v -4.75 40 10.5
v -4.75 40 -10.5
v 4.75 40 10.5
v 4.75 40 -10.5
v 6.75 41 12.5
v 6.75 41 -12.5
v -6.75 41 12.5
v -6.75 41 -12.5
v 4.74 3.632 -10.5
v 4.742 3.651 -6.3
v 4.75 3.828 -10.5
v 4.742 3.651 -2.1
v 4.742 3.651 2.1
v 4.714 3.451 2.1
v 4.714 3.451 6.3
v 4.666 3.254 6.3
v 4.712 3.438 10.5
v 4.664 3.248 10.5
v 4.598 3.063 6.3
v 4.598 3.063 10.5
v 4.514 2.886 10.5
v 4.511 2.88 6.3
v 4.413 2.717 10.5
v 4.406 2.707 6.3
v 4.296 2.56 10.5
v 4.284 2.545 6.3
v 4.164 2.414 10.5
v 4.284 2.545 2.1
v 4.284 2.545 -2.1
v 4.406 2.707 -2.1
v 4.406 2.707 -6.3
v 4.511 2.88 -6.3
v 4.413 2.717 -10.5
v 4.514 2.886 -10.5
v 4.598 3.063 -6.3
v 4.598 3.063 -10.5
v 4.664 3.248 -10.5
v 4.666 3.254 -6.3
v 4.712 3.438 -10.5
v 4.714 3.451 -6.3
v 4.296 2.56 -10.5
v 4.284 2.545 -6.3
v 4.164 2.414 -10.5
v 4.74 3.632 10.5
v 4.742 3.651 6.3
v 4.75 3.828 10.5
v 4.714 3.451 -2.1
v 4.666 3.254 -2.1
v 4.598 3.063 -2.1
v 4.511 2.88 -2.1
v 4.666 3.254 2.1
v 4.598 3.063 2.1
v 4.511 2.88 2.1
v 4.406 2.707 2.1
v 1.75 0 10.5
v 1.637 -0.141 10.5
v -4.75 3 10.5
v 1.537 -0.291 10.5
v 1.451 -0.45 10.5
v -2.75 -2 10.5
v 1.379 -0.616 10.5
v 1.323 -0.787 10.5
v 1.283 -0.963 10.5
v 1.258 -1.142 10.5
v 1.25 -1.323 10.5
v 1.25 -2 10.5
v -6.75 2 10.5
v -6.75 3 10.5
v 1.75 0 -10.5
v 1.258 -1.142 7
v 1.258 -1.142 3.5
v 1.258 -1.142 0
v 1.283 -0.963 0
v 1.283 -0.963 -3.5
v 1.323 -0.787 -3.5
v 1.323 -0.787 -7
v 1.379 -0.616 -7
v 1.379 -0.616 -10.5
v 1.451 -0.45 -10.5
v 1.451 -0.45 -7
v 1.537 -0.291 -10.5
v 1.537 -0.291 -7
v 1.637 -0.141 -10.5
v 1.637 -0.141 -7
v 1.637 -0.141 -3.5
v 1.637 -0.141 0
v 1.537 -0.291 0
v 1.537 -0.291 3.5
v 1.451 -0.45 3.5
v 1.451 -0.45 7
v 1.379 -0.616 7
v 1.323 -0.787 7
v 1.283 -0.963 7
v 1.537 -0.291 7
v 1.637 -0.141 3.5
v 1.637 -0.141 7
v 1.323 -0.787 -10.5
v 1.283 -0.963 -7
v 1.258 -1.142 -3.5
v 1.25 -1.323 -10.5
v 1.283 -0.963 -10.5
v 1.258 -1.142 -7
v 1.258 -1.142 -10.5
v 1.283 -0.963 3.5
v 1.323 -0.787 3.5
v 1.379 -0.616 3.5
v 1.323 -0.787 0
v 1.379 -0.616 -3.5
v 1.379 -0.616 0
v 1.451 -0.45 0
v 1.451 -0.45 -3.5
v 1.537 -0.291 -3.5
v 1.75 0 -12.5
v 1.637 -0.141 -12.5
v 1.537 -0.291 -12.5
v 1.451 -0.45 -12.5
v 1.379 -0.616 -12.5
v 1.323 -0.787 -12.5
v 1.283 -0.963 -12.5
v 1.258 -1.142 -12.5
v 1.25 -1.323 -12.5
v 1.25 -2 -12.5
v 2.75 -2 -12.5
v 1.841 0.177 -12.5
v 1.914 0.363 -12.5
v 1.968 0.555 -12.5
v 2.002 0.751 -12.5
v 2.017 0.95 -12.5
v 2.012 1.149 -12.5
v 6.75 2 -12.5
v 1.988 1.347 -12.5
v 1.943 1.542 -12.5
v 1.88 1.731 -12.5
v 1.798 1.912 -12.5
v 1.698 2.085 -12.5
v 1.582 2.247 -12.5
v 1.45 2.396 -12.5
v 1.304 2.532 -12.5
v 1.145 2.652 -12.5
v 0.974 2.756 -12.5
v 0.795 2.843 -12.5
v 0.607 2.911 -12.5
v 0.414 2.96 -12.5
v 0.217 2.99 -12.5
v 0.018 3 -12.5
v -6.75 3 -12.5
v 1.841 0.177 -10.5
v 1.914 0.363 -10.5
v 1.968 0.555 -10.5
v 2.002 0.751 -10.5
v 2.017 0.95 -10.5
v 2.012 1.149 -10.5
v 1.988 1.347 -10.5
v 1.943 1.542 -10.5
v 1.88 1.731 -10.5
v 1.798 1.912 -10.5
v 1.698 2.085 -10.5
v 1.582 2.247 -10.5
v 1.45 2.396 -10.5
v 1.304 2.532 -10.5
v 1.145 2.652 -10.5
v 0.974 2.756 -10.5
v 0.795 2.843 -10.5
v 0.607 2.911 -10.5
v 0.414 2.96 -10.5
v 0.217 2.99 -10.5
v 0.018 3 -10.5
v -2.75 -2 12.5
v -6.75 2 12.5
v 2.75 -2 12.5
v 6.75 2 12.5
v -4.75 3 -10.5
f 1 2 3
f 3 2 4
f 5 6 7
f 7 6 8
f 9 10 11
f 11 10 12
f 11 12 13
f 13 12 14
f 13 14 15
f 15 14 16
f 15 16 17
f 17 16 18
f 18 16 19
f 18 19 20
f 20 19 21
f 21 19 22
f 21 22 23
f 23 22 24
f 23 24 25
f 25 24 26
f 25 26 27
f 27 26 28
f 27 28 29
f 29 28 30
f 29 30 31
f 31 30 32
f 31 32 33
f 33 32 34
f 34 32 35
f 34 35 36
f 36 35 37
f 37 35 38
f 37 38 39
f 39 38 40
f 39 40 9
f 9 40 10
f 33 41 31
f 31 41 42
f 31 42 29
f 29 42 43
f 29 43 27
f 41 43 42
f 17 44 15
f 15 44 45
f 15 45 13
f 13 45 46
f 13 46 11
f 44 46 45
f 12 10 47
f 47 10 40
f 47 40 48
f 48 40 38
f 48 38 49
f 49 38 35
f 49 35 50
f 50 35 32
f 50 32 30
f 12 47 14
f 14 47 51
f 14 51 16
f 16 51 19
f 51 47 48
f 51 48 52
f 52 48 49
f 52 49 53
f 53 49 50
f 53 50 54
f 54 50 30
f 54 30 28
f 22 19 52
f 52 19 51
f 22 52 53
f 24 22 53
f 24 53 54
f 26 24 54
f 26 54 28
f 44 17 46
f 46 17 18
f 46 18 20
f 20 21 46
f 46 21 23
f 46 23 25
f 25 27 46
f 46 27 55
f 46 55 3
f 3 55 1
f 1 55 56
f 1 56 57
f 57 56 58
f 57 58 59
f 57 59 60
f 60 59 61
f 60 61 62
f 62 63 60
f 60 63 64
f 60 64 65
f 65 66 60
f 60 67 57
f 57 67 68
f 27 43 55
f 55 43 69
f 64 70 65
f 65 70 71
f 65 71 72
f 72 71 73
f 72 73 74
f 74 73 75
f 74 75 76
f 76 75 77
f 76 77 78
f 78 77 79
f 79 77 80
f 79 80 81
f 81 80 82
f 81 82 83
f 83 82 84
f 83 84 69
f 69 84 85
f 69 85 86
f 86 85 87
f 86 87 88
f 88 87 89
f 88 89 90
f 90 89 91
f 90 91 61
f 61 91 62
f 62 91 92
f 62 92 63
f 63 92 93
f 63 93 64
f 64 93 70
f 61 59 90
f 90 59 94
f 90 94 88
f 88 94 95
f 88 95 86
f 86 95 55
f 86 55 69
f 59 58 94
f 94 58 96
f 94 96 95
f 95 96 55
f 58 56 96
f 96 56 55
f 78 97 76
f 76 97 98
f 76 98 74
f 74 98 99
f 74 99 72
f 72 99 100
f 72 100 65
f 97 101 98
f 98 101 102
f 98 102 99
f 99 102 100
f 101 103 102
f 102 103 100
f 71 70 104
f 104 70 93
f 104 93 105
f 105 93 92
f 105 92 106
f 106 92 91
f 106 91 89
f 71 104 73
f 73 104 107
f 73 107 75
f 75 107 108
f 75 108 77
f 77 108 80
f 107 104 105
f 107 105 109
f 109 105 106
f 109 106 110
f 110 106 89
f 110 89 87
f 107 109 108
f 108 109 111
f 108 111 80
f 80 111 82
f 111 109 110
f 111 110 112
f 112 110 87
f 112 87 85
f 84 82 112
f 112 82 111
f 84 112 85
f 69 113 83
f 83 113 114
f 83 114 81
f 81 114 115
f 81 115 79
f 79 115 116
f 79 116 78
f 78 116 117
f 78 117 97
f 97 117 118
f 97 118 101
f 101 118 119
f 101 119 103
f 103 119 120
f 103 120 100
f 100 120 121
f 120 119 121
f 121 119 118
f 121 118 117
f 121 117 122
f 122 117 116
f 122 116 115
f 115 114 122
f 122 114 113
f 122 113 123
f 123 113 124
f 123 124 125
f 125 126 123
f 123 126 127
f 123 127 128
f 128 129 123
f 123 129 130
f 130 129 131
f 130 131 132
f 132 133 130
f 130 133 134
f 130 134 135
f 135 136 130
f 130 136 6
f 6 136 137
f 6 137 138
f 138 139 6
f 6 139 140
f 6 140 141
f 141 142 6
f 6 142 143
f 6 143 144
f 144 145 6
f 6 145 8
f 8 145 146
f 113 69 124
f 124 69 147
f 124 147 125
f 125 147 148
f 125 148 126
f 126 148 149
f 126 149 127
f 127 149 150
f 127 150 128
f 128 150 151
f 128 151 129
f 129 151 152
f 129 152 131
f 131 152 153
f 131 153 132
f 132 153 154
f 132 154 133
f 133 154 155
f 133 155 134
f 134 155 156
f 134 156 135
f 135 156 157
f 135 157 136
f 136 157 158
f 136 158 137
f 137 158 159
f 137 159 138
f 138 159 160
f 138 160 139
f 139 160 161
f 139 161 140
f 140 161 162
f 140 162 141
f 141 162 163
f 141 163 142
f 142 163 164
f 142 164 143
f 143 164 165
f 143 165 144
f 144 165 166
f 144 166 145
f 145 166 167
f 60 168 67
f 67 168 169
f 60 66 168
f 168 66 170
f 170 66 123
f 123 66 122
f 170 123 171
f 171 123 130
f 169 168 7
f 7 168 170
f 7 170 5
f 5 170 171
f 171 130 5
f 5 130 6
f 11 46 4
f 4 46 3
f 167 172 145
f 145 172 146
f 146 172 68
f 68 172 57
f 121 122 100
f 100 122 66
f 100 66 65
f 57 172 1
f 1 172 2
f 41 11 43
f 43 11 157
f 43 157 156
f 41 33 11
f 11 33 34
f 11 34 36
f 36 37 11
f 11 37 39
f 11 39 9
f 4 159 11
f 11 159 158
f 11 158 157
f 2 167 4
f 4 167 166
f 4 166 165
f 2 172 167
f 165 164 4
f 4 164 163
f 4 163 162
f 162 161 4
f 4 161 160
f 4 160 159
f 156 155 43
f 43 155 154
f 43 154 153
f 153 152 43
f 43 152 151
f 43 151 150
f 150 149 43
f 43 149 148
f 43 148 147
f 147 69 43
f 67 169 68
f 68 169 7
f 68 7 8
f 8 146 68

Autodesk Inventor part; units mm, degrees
ref_plane "YZ Plane" through (0, 0, 0) normal (1, 0, 0) x (0, 1, 0)
ref_plane "XZ Plane" through (0, 0, 0) normal (0, 1, 0) x (-1, 0, 0)
ref_plane "XY Plane" through (0, 0, 0) normal (0, 0, 1) x (1, 0, 0)
sketch "Skizze1" plane through (0, 0, 0) normal (0, 1, 0) x (-1, 0, 0)
  line L0 (4.75, -10.5) -> (-4.75, -10.5)
  line L1 (-4.75, -10.5) -> (-4.75, 10.5)
  line L2 (-4.75, 10.5) -> (4.75, 10.5)
  line L3 (4.75, 10.5) -> (4.75, -10.5)
  line L4 (4.75, -10.5) -> (-4.75, 10.5) construction
  line L5 (-4.75, -10.5) -> (4.75, 10.5) construction
  line L6 (-6.75, -12.5) -> (6.75, -12.5)
  line L7 (6.75, -12.5) -> (6.75, 12.5)
  line L8 (6.75, 12.5) -> (-6.75, 12.5)
  line L9 (-6.75, 12.5) -> (-6.75, -12.5)
  line L10 (-6.75, -12.5) -> (6.75, 12.5) construction
  line L11 (6.75, -12.5) -> (-6.75, 12.5) construction
  point P0 (0, 0)
  dimension "d0" = 9.5
  dimension "d1" = 21
  dimension "d2" = 2
  dimension "d3" = 2
extrude "Extrusion1" add sketch "Skizze1" along normal blind 40
sketch "Skizze2" plane through (0, 0, 0) normal (0, -1, 0) x (1, 0, 0)
  line L0 (6.75, 12.5) -> (6.75, -12.5) projected
  line L1 (-6.75, 12.5) -> (6.75, 12.5) projected
  line L2 (-6.75, -12.5) -> (-6.75, 12.5) projected
  line L3 (-6.75, -12.5) -> (6.75, -12.5)
  line L4 (6.75, -12.5) -> (6.75, 12.5)
  line L5 (6.75, 12.5) -> (-6.75, 12.5)
  line L6 (-6.75, 12.5) -> (-6.75, -12.5)
  line L7 (-6.75, -12.5) -> (6.75, 12.5) construction
  line L8 (6.75, -12.5) -> (-6.75, 12.5) construction
  point P0 (0, 0)
extrude "Extrusion2" add sketch "Skizze2" along normal blind 2
sketch "Skizze3" plane through (6.75, 40, -12.5) normal (0, 0, -1) x (-1, 0, 0)
  line L0 (11.5, -40) -> (11.5, 0) projected
  line L1 (2, -40) -> (2, 0) projected
  line L2 (11.5, -40) -> (2, -40)
  line L3 (2, -40) -> (2, -37)
  line L4 (2, -37) -> (11.5, -37)
  line L5 (11.5, -37) -> (11.5, -40)
  line L6 (13.5, -42) -> (0, -42) projected
  line L7 (11.5, -37) -> (13.5, -37)
  line L8 (13.5, -37) -> (13.5, -42)
  line L9 (13.5, -42) -> (11.5, -42)
  line L10 (11.5, -42) -> (11.5, -37)
  line L11 (11.5, -40) -> (11.5, 0) projected
  line L12 (11.5, -40) -> (5.5, -40)
  line L13 (5.5, -40) -> (5.5, -42)
  line L14 (5.5, -42) -> (11.5, -42)
  line L15 (11.5, -42) -> (11.5, -40)
  point P0 (6.75, -40)
  dimension "d8" = 3
  dimension "d9" = 6
extrude "Extrusion3" cut sketch "Skizze3" against normal up to surface (23 mm away)
chamfer "Fase1" distance 3 angle 45 1 edges at (4.75, 0, -1)
chamfer "Fase2" distance 4 angle 45 1 edges at (6.75, -2, 0)
chamfer "Fase3" distance 4 angle 45 1 edges at (-6.75, -2, 11.5)
fillet "Rundung1" radius 2 2 edges at (4.75, 3, -11.5) (1.25, 0, -1)
fillet "Rundung2" radius 2 1 edges at (4.75, 3, 0)
sketch "Skizze4" plane through (0, 40, 0) normal (0, 1, 0) x (1, 0, 0)
  line L0 (2.75, 12.5) -> (6.75, 12.5) projected
  line L1 (-6.75, -12.5) -> (6.75, -12.5)
  line L2 (6.75, -12.5) -> (6.75, 12.5)
  line L3 (6.75, 12.5) -> (-6.75, 12.5)
  line L4 (-6.75, 12.5) -> (-6.75, -12.5)
  line L5 (-6.75, -12.5) -> (6.75, 12.5) construction
  line L6 (6.75, -12.5) -> (-6.75, 12.5) construction
  point P0 (0, 0)
extrude "Extrusion4" add sketch "Skizze4" along normal blind 1
equation "\"G_L\" = 0"
equation "\"G_H\" = 0"
equation "\"G_B\" = 0"
properties part number "BackupBat_Wing" material "GEDA Stahl"
